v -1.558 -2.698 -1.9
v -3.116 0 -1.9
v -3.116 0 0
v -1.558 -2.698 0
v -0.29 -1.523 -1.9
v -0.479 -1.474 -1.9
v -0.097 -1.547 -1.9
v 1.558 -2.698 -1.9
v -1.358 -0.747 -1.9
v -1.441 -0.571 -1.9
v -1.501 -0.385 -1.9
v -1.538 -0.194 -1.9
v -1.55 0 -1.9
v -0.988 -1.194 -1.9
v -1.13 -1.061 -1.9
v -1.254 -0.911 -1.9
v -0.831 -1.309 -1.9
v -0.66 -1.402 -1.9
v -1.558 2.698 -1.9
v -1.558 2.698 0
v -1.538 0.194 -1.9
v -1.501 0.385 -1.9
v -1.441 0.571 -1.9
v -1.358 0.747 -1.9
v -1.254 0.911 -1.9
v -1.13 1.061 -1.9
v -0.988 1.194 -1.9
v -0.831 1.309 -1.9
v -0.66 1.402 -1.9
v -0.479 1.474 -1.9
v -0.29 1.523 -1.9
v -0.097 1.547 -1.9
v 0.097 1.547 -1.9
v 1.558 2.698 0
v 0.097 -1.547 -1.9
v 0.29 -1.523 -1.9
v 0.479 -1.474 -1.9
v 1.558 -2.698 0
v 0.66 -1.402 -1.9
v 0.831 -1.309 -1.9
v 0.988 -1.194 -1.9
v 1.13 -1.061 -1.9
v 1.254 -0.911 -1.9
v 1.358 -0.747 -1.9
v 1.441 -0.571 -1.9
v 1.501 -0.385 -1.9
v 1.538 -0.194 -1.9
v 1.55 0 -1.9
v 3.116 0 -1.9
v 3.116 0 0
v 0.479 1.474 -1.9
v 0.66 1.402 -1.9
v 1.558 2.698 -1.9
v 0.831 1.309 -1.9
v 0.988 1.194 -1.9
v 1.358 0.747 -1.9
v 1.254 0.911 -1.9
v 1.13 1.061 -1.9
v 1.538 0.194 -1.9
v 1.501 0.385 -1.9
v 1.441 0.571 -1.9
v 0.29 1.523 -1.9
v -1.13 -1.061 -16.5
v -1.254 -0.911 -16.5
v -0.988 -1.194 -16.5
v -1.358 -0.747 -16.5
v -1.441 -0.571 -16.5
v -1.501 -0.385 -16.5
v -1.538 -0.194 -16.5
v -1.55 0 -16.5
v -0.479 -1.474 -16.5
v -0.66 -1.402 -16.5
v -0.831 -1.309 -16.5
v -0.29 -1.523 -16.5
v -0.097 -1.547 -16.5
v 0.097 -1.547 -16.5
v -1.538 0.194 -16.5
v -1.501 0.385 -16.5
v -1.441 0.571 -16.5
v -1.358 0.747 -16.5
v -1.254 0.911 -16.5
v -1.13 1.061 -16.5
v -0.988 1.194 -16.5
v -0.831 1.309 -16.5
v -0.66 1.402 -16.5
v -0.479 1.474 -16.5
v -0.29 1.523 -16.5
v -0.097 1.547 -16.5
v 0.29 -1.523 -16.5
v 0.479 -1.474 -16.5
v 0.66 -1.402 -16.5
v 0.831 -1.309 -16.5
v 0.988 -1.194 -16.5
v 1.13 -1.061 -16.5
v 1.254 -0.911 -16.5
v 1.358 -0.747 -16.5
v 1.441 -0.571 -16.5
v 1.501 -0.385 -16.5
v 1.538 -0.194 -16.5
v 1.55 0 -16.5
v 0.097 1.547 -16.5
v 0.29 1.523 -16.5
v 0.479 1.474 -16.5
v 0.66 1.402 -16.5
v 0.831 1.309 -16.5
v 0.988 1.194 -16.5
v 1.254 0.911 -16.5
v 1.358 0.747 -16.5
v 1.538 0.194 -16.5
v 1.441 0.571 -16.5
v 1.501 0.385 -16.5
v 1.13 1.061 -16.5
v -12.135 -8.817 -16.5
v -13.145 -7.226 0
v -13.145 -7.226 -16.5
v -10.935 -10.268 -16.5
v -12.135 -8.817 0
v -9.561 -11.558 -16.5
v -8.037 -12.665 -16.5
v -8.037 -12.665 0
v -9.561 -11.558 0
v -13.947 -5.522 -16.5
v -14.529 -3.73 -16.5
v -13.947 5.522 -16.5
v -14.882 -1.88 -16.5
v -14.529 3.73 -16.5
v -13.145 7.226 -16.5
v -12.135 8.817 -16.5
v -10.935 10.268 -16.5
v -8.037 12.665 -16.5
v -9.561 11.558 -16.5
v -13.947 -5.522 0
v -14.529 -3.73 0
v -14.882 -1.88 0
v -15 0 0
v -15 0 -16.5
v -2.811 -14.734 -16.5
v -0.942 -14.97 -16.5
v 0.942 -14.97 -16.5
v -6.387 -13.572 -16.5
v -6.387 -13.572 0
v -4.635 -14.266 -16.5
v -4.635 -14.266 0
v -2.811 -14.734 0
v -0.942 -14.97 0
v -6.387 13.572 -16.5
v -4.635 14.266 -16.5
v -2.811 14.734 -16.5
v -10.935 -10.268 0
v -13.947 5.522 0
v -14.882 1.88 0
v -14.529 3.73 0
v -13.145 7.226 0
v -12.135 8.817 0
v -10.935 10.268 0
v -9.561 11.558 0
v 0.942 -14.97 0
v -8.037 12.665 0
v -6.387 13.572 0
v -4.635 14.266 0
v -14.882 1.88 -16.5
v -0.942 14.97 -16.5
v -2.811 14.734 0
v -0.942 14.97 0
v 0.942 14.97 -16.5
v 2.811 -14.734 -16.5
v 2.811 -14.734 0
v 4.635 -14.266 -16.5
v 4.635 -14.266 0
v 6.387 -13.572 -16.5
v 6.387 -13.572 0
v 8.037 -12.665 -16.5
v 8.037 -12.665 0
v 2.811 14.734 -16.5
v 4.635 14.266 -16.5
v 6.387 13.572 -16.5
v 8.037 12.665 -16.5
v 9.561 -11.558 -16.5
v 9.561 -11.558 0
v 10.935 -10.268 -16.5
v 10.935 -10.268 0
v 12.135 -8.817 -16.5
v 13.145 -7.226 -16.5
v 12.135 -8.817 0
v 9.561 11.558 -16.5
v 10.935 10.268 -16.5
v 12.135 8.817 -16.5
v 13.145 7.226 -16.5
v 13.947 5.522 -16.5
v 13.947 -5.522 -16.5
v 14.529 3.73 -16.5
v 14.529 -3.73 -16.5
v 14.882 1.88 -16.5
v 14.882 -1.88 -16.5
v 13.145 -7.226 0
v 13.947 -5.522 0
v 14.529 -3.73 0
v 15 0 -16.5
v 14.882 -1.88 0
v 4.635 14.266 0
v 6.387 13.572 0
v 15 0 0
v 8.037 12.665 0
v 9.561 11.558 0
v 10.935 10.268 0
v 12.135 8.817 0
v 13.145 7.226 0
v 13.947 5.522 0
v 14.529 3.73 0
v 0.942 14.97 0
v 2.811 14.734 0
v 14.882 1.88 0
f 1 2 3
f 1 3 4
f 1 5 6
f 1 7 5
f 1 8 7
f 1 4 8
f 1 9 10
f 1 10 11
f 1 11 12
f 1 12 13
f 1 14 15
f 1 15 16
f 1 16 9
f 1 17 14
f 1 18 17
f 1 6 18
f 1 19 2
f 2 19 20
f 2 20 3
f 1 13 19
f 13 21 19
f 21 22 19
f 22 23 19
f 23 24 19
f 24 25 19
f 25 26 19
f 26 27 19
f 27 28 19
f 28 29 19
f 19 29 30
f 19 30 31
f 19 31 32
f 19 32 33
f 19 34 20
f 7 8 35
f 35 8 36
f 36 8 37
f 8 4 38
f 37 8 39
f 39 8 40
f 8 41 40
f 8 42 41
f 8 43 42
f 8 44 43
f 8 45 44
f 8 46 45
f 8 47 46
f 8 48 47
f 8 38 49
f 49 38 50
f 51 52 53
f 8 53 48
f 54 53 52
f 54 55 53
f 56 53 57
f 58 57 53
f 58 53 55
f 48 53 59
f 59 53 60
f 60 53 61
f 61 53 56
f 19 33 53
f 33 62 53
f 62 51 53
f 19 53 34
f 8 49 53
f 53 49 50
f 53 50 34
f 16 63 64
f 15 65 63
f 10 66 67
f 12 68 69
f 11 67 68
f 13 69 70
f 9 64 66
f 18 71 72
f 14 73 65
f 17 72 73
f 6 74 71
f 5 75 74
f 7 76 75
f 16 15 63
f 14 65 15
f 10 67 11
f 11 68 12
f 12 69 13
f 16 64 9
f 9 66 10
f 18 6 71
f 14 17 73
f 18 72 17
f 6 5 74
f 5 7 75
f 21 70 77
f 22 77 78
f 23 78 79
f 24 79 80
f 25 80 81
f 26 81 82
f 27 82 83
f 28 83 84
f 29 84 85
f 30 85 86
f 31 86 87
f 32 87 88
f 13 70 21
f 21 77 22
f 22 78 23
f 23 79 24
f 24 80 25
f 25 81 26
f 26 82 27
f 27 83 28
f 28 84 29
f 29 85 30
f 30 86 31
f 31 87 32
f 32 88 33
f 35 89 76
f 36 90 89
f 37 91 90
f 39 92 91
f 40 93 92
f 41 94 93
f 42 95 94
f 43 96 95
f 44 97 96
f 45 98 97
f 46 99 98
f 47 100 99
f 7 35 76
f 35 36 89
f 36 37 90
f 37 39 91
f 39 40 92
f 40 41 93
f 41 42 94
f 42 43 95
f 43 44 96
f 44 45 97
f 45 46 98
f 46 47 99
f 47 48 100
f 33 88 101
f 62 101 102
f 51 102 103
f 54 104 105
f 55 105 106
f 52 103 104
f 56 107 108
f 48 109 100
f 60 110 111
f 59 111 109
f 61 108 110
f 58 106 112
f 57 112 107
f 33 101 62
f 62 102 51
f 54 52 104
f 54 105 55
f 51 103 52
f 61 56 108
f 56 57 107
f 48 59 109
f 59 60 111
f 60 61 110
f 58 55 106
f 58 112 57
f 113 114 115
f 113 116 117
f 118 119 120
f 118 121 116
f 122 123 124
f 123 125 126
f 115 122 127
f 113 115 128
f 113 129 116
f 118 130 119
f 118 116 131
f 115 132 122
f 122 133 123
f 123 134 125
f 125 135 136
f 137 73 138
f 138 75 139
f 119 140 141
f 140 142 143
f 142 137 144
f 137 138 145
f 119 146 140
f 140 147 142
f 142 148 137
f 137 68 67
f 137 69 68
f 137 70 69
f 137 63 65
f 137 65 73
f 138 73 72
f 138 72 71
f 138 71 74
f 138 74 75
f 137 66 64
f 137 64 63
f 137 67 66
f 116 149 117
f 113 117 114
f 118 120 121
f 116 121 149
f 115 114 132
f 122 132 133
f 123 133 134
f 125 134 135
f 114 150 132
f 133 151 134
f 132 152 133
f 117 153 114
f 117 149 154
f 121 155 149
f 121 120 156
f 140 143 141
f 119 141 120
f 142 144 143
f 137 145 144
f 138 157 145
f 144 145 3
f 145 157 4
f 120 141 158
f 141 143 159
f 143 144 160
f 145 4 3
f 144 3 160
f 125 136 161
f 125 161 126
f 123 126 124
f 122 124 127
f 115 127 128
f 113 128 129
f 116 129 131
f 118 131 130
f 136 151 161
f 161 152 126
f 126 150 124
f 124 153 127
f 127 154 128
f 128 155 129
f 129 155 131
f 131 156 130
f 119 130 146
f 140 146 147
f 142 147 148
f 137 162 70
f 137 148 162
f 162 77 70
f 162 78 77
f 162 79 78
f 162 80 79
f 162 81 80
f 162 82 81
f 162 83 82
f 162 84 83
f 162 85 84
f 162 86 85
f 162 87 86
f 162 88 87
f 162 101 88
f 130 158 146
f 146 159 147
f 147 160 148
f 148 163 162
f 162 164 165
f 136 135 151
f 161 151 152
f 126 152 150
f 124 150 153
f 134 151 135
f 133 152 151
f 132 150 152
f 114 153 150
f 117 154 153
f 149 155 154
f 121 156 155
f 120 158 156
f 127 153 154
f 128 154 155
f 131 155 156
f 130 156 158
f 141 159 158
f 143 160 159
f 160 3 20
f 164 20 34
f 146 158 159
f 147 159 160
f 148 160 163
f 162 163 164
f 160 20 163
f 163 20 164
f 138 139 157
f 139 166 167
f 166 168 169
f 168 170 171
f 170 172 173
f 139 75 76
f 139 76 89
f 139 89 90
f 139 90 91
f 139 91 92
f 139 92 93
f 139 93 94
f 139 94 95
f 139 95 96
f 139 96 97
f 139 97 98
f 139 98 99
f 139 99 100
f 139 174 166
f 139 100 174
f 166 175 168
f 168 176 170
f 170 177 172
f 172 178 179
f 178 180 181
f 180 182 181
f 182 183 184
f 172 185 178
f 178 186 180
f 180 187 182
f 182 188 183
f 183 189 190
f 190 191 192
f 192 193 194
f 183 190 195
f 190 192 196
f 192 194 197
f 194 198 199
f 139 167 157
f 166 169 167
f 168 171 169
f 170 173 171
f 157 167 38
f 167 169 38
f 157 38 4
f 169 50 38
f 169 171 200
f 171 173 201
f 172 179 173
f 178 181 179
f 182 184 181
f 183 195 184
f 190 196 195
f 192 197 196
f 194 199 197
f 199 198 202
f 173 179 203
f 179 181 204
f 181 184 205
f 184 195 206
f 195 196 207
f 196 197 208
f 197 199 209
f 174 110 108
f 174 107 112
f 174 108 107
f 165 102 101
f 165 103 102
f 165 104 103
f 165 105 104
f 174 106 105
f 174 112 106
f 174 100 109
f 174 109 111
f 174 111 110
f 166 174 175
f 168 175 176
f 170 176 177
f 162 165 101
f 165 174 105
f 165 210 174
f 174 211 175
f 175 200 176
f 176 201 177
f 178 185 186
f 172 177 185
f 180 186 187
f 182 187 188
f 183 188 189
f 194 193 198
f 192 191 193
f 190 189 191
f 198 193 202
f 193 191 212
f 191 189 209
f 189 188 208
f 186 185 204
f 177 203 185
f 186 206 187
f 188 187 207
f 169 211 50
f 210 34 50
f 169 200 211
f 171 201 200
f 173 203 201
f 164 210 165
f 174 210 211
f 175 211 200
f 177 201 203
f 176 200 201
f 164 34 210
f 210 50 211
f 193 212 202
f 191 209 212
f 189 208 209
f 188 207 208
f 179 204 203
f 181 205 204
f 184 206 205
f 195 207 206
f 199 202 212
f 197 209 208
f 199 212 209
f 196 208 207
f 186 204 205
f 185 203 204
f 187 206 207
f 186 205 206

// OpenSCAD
$fn = 50;

difference() {
	union() {
		translate(v = [0, 0, -16.5]) {
			cylinder(h = 16.5, r = 15.0);
		}
	}
	union() {
		translate(v = [0, 0, 0]) {
			rotate(a = [0, 0, 0]) {
				difference() {
					union() {
						translate(v = [0, 0, -1.9]) {
							linear_extrude(height = 1.9) {
								polygon(points = [[3.1158, 0.0], [1.5579000000000005, 2.698361953111554], [-1.5578999999999994, 2.6983619531115544], [-3.1158, 3.815754496783323e-16], [-1.5579000000000014, -2.6983619531115535], [1.557899999999998, -2.6983619531115552]]);
							}
						}
					}
					union();
				}
			}
		}
		#translate(v = [0, 0, -100.0]) {
			cylinder(h = 200, r = 1.55);
		}
	}
}
